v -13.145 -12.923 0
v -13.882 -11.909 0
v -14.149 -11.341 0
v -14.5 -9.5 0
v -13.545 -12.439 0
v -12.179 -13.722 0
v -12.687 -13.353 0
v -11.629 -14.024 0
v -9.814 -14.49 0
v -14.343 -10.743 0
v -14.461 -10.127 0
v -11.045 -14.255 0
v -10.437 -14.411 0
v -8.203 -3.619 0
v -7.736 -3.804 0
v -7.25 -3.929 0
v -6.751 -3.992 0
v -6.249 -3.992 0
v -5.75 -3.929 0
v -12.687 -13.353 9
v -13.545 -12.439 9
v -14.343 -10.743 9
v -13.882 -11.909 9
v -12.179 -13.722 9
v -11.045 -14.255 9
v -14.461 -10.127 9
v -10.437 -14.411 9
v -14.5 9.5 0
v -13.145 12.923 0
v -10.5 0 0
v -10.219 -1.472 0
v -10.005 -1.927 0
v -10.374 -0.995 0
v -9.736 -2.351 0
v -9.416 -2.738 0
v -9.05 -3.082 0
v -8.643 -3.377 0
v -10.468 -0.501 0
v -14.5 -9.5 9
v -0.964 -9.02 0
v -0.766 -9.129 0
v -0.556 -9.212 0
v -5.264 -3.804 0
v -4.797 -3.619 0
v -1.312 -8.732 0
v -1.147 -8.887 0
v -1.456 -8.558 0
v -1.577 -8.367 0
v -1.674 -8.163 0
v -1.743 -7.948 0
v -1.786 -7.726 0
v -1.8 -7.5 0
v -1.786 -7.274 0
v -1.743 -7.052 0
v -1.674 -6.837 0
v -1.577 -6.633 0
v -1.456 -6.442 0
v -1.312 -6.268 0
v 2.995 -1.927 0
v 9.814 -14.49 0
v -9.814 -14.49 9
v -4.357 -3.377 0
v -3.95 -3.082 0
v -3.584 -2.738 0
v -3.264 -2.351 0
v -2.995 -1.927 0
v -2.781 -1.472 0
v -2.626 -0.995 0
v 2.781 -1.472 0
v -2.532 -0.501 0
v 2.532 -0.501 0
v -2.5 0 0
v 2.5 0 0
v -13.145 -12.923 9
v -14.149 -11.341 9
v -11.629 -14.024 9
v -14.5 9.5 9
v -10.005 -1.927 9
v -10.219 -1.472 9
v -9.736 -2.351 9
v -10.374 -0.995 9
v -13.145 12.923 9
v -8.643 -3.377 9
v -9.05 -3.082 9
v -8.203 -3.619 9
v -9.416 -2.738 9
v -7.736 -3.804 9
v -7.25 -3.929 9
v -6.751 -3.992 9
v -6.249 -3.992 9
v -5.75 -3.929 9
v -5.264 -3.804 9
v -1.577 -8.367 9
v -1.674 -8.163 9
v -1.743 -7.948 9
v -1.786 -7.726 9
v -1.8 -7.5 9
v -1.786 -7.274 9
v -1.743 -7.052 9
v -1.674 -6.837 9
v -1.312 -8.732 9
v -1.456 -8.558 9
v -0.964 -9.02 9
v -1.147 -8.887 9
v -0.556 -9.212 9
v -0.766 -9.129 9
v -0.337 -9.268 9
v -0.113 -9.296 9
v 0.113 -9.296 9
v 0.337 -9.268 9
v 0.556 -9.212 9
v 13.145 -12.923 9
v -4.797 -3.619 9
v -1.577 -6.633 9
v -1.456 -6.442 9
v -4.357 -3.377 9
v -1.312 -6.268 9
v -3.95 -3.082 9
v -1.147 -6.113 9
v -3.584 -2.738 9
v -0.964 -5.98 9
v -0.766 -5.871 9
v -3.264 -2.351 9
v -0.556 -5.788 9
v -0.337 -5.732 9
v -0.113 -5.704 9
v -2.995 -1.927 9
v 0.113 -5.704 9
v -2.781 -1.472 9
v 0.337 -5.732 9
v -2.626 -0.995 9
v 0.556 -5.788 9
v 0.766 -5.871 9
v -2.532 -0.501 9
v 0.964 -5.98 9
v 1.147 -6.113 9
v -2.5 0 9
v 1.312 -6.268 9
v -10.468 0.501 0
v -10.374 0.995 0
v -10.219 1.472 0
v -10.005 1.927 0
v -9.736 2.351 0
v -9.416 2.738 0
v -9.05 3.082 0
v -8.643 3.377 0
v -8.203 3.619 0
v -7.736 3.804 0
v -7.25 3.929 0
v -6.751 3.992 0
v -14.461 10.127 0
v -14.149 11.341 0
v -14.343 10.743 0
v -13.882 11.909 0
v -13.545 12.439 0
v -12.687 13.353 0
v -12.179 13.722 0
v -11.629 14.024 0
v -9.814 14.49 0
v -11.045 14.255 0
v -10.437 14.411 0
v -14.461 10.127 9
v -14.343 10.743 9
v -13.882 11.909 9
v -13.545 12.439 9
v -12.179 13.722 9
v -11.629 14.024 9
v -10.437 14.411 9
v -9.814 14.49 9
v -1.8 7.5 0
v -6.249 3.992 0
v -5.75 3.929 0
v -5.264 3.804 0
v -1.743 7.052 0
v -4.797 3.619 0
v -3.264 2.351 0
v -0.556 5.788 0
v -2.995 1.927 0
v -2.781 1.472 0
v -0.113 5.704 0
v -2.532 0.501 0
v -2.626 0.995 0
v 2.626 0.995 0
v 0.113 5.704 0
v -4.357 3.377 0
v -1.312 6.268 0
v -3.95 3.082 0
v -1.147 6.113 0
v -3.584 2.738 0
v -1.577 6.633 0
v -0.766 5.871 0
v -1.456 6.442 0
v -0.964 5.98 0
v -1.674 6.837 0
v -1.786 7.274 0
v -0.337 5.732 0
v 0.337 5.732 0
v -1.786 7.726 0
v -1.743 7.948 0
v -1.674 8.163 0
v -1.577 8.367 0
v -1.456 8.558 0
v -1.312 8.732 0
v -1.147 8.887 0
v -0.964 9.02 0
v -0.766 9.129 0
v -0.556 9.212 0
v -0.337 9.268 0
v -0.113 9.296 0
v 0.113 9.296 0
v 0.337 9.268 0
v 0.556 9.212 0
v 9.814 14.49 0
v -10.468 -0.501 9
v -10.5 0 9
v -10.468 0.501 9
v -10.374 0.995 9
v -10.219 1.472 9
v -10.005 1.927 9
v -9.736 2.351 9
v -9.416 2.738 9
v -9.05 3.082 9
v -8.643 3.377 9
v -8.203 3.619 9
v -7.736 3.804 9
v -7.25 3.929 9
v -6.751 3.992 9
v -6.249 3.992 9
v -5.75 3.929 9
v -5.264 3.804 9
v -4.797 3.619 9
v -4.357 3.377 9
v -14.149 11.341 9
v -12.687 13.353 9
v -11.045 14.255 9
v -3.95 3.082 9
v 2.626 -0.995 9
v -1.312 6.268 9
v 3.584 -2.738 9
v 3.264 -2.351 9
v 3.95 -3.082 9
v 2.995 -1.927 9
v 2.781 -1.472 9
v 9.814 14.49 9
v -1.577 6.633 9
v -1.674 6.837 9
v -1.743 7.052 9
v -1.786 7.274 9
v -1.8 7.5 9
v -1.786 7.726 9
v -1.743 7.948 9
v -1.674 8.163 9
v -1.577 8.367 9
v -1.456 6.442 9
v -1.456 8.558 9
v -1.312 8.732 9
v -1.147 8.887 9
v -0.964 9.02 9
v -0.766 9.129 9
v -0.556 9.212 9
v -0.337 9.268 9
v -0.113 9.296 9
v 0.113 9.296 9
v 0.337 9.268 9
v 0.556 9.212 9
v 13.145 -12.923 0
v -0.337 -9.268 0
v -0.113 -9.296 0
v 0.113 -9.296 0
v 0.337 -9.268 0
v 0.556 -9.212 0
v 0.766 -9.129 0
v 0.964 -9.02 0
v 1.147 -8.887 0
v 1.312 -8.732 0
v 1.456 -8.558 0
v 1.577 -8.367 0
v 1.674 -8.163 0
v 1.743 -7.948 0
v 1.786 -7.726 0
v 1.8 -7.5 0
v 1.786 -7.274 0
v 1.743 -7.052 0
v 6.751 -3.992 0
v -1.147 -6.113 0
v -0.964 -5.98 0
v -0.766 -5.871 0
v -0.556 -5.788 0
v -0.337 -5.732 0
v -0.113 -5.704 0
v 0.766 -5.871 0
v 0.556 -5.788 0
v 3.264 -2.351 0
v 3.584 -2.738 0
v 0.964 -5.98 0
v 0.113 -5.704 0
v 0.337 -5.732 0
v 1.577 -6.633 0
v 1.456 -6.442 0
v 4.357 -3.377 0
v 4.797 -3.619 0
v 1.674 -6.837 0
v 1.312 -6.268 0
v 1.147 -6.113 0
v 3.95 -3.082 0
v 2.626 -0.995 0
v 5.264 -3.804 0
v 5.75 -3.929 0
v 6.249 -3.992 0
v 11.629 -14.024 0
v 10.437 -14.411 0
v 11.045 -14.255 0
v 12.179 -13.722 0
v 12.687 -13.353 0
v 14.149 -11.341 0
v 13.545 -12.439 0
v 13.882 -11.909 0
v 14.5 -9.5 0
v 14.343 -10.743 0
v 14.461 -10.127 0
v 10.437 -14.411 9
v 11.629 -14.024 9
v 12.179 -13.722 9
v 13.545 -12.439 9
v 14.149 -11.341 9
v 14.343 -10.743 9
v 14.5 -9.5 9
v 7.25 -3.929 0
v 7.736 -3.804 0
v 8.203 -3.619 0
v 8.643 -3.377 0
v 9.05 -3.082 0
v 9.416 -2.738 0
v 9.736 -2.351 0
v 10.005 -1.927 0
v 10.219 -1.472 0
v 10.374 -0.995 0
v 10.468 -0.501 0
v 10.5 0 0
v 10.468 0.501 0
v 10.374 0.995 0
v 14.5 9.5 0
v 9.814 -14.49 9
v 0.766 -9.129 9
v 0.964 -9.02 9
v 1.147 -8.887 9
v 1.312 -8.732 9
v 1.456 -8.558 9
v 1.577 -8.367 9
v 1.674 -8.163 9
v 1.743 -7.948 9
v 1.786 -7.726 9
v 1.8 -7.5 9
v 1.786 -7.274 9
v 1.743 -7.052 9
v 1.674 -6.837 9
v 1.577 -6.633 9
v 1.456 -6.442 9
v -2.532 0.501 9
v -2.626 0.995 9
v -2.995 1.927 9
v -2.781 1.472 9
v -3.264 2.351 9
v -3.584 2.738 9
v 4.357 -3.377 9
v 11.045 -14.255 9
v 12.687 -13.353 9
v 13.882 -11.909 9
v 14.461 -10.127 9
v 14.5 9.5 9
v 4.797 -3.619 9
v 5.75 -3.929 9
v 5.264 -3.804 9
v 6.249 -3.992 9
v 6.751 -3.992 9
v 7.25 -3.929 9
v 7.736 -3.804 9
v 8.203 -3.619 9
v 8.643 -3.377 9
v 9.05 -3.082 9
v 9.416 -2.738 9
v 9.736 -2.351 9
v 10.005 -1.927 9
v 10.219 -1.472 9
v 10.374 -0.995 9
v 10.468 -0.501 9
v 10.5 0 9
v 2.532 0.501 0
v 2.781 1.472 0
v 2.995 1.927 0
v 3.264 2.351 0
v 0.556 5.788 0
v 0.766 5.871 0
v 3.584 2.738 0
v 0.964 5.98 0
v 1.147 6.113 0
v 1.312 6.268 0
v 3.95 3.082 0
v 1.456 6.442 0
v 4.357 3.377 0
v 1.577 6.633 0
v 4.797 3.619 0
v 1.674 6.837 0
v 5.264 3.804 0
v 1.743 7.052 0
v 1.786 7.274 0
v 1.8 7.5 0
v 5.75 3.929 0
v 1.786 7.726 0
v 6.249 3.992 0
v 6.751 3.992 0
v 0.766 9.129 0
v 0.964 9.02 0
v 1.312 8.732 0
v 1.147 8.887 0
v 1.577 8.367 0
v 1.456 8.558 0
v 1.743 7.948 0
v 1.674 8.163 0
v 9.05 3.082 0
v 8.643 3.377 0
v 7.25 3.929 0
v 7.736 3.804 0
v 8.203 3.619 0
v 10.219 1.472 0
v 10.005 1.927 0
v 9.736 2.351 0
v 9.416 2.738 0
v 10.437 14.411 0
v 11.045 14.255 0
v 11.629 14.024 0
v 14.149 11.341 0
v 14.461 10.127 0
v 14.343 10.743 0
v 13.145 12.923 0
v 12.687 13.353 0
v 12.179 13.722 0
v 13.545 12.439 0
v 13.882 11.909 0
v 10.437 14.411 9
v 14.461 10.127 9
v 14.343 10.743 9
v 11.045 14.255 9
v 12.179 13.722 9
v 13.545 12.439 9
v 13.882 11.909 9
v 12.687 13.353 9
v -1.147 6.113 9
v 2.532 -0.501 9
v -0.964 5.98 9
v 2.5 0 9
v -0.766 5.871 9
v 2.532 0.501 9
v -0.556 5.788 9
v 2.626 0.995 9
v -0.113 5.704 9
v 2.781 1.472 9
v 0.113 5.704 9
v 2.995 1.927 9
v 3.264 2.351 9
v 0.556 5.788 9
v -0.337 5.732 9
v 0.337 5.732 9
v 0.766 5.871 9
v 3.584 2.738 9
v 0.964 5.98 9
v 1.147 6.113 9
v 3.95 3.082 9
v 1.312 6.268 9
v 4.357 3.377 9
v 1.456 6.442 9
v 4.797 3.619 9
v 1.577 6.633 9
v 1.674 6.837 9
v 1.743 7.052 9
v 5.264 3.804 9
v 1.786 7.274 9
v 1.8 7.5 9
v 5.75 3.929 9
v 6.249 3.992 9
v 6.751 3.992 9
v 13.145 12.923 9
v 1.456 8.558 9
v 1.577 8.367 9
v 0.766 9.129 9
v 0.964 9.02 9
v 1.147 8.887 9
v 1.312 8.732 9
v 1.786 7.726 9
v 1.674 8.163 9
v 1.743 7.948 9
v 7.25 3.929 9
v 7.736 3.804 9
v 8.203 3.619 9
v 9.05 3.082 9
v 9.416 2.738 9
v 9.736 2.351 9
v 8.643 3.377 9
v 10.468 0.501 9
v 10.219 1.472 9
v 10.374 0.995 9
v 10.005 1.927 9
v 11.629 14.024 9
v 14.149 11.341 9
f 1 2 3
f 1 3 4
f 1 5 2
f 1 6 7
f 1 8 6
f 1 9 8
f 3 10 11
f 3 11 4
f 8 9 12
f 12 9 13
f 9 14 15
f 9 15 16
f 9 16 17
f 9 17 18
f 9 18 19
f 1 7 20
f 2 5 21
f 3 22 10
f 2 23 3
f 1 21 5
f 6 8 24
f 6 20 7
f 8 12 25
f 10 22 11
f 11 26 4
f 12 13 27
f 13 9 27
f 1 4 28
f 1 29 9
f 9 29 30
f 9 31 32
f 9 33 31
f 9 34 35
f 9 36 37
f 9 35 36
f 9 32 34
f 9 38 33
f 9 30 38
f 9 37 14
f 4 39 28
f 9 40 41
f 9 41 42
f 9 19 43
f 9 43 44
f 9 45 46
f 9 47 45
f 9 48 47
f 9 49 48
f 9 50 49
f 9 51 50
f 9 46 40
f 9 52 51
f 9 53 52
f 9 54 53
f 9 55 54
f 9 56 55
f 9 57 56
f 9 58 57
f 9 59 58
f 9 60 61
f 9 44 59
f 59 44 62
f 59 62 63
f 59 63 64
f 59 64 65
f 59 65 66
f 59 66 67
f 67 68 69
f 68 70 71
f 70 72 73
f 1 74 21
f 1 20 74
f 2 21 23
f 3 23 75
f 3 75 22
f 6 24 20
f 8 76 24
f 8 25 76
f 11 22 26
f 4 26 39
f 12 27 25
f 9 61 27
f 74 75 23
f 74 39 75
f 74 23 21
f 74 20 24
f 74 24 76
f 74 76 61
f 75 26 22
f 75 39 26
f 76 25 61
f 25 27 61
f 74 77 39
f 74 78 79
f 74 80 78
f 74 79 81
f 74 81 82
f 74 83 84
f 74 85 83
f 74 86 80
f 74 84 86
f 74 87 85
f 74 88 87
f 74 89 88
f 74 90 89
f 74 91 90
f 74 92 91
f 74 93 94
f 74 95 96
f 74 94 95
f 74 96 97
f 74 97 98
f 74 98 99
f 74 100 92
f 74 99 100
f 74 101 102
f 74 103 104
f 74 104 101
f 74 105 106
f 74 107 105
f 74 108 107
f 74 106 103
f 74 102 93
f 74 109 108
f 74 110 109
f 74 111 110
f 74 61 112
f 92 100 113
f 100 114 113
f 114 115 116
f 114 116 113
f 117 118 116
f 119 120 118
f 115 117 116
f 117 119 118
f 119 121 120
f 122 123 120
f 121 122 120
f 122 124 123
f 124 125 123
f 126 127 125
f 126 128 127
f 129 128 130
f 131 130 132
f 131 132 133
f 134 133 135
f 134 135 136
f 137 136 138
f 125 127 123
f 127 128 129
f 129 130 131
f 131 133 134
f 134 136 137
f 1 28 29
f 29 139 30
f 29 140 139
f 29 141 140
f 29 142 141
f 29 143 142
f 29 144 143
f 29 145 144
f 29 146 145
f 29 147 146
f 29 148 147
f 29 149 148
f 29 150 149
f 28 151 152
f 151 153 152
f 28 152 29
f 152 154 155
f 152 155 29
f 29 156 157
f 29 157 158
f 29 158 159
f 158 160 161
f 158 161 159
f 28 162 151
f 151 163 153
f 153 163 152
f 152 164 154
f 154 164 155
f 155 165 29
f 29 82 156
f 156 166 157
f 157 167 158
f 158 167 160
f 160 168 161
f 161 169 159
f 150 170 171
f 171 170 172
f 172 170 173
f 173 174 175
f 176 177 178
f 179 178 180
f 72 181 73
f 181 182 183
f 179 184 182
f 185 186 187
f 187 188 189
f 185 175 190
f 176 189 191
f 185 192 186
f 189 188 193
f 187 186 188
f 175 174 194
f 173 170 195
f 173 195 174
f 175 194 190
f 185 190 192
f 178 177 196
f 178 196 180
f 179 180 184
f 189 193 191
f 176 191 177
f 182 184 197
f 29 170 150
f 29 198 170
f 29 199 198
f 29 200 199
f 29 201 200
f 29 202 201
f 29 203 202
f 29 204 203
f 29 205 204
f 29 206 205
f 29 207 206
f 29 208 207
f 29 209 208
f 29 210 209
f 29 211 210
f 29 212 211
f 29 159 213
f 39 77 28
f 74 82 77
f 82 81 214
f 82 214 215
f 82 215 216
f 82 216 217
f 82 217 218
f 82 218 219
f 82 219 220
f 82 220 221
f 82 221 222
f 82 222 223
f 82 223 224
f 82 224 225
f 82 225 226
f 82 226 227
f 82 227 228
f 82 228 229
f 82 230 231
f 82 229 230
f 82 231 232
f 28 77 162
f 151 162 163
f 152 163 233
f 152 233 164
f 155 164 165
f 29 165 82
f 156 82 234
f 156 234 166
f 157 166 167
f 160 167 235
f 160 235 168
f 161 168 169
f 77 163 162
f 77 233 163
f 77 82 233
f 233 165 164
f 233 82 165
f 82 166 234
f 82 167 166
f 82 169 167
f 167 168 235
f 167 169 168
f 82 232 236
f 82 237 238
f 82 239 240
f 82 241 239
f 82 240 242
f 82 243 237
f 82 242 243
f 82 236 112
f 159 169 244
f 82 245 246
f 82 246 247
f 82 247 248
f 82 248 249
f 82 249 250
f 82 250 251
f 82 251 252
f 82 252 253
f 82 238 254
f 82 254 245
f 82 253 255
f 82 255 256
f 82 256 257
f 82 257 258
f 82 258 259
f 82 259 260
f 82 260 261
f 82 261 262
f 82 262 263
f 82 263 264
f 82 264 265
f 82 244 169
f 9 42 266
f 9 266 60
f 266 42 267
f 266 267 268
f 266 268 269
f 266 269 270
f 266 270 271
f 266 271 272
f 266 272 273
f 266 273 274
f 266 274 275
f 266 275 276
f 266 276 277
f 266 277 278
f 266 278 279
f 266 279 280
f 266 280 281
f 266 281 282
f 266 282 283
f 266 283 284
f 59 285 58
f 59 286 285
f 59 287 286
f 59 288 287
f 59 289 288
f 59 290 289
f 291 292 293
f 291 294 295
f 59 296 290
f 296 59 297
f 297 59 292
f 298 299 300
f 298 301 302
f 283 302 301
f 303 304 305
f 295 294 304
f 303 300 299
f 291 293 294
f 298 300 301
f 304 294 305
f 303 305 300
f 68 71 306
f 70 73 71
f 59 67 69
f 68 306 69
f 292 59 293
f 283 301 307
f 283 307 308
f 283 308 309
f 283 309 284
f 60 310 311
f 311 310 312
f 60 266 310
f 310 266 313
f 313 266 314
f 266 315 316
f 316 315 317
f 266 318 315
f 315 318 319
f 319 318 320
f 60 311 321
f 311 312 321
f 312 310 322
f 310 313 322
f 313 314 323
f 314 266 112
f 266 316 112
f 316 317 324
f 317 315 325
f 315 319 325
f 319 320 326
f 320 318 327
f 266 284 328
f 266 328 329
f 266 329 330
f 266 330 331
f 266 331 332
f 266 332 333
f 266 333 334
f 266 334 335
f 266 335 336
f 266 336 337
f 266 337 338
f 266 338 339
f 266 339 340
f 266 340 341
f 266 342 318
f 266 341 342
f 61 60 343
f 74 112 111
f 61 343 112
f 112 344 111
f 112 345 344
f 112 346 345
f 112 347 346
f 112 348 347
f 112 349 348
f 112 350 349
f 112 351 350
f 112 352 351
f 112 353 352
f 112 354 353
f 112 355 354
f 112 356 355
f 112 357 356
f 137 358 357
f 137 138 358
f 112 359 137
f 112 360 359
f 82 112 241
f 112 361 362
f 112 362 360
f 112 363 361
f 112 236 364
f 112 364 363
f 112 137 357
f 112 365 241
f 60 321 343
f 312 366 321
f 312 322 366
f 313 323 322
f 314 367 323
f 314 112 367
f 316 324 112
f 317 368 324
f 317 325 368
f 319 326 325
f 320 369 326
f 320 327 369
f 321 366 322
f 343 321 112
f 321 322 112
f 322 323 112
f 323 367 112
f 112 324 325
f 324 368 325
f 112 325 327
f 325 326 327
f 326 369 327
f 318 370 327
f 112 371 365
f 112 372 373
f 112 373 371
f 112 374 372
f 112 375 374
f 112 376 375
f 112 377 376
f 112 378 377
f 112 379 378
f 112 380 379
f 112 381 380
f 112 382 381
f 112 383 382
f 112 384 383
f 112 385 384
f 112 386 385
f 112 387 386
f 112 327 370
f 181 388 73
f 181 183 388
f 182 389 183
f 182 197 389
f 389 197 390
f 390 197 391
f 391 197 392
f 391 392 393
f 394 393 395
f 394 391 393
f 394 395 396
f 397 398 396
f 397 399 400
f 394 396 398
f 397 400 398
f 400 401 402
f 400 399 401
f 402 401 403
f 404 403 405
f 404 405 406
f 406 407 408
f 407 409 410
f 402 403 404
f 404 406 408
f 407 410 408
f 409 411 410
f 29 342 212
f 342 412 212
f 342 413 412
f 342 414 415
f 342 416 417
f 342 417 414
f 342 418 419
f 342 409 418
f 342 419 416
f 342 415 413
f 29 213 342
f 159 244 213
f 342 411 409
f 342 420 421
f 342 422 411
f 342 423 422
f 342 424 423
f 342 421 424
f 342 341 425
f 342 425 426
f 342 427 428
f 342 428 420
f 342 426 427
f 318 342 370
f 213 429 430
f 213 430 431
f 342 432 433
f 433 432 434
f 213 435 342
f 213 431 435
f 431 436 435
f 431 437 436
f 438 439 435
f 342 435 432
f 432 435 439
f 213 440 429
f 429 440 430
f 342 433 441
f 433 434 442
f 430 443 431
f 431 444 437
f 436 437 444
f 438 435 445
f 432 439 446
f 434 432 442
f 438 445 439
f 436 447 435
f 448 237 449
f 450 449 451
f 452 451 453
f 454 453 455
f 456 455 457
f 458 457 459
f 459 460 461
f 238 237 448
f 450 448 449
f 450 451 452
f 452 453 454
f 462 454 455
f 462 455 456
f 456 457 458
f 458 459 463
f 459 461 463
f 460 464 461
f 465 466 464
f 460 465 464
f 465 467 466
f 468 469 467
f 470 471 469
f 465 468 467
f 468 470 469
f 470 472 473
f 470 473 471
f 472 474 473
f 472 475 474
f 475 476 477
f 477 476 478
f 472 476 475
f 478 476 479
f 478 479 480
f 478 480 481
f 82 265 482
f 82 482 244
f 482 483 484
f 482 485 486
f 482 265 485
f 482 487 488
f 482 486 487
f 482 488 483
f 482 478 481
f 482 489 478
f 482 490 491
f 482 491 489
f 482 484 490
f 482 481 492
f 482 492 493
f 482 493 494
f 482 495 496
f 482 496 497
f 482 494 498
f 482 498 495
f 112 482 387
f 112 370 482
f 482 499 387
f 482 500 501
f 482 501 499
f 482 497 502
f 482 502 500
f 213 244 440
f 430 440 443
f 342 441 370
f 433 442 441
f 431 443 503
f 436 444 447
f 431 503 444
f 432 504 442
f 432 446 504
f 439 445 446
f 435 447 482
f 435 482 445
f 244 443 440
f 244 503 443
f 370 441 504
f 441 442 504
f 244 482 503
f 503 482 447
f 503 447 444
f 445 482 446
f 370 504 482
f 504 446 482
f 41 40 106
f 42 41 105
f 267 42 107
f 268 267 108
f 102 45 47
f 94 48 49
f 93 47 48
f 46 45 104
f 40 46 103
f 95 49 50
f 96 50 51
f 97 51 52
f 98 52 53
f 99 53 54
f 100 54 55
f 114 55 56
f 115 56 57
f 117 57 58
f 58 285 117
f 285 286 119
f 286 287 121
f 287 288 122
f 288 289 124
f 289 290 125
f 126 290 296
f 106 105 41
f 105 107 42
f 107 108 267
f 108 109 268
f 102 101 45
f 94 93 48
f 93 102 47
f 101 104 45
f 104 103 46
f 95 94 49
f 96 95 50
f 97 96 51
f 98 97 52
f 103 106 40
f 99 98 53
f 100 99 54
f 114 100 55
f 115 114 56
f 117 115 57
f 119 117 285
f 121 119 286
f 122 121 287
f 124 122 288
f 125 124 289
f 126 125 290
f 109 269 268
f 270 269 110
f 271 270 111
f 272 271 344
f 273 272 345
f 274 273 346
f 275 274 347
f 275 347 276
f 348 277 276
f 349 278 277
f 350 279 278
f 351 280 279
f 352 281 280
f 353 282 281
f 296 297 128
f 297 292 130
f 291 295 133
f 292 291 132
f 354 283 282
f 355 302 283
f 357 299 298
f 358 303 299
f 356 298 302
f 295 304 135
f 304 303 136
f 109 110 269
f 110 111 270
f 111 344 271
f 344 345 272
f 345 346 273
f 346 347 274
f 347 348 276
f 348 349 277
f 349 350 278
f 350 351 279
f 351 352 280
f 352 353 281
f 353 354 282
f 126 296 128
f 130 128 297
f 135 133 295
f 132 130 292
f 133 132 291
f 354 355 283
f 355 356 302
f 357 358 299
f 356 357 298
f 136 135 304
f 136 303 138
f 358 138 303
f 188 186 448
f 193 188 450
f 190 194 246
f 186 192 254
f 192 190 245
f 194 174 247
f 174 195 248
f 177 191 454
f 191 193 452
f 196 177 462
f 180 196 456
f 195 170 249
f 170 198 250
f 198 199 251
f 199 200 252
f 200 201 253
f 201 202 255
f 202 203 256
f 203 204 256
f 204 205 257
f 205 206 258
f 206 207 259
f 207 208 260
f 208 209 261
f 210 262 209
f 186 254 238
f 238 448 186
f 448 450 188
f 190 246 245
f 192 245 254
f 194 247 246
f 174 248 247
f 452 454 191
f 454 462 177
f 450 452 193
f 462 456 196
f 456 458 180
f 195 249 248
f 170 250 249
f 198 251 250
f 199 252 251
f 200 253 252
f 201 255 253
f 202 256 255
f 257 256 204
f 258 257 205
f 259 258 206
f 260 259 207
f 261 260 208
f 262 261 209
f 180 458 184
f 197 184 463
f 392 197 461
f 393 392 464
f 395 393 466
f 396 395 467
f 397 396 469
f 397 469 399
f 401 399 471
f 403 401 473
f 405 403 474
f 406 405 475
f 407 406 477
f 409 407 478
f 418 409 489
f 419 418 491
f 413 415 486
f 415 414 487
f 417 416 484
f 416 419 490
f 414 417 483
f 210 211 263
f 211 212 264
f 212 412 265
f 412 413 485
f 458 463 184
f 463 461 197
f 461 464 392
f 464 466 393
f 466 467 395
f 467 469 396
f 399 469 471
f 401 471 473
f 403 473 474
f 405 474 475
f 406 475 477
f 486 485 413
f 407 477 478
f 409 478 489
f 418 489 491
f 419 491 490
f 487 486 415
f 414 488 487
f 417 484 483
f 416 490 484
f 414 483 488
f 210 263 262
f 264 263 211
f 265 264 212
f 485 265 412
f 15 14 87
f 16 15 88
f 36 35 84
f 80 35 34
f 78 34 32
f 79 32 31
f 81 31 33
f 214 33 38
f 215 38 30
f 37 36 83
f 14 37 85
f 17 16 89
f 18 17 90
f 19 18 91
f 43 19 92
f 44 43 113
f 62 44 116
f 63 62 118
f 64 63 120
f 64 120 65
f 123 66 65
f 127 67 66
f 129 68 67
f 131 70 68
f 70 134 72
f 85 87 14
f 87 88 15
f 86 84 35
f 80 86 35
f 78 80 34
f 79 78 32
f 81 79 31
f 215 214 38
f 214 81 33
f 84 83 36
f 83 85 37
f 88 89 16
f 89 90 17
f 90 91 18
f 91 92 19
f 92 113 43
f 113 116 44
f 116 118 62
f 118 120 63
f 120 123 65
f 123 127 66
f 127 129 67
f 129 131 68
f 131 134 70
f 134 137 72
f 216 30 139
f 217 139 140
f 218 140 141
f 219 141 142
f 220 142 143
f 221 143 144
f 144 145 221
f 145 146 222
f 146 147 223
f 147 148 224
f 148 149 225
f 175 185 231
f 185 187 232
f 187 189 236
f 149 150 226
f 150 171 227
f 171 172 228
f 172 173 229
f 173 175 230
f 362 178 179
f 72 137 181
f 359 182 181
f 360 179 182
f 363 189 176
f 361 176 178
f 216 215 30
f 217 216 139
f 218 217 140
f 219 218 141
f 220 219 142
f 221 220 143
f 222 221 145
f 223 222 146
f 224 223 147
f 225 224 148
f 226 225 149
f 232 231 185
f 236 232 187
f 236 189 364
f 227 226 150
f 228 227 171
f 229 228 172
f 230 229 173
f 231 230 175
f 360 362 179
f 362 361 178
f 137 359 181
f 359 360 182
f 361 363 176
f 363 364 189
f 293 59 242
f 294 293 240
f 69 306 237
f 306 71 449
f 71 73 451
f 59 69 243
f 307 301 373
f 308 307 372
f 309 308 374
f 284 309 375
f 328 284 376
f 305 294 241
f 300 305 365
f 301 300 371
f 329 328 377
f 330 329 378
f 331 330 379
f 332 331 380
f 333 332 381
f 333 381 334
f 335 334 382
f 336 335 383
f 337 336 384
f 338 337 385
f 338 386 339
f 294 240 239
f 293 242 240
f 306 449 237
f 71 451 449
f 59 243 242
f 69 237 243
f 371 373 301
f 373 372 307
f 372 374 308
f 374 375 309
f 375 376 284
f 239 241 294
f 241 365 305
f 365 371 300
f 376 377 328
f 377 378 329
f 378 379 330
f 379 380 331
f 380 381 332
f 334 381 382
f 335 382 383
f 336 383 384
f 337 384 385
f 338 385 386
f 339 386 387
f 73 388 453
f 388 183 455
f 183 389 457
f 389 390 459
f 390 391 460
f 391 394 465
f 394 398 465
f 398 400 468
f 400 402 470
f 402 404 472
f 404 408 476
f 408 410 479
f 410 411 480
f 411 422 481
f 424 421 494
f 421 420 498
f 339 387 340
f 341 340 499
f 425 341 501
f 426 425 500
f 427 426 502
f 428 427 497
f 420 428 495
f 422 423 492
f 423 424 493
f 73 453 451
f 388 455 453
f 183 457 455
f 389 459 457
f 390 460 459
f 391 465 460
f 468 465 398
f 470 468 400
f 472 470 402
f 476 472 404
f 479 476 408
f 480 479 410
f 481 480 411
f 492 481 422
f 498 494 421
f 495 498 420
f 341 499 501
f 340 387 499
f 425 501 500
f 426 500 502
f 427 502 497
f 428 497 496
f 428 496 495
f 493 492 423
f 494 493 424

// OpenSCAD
$fn = 50;

difference() {
	union() {
		hull() {
			translate(v = [-9.5, 9.5, 0]) {
				cylinder(h = 9, r = 5);
			}
			translate(v = [9.5, 9.5, 0]) {
				cylinder(h = 9, r = 5);
			}
			translate(v = [-9.5, -9.5, 0]) {
				cylinder(h = 9, r = 5);
			}
			translate(v = [9.5, -9.5, 0]) {
				cylinder(h = 9, r = 5);
			}
		}
	}
	union() {
		translate(v = [0.0, -7.5, 0]) {
			cylinder(h = 9, r = 1.8);
		}
		translate(v = [0.0, 7.5, 0]) {
			cylinder(h = 9, r = 1.8);
		}
		translate(v = [-6.5, 0, 0.0]) {
			cylinder(h = 9, r = 4.0);
		}
		translate(v = [6.5, 0, 0.0]) {
			cylinder(h = 9, r = 4.0);
		}
	}
}
